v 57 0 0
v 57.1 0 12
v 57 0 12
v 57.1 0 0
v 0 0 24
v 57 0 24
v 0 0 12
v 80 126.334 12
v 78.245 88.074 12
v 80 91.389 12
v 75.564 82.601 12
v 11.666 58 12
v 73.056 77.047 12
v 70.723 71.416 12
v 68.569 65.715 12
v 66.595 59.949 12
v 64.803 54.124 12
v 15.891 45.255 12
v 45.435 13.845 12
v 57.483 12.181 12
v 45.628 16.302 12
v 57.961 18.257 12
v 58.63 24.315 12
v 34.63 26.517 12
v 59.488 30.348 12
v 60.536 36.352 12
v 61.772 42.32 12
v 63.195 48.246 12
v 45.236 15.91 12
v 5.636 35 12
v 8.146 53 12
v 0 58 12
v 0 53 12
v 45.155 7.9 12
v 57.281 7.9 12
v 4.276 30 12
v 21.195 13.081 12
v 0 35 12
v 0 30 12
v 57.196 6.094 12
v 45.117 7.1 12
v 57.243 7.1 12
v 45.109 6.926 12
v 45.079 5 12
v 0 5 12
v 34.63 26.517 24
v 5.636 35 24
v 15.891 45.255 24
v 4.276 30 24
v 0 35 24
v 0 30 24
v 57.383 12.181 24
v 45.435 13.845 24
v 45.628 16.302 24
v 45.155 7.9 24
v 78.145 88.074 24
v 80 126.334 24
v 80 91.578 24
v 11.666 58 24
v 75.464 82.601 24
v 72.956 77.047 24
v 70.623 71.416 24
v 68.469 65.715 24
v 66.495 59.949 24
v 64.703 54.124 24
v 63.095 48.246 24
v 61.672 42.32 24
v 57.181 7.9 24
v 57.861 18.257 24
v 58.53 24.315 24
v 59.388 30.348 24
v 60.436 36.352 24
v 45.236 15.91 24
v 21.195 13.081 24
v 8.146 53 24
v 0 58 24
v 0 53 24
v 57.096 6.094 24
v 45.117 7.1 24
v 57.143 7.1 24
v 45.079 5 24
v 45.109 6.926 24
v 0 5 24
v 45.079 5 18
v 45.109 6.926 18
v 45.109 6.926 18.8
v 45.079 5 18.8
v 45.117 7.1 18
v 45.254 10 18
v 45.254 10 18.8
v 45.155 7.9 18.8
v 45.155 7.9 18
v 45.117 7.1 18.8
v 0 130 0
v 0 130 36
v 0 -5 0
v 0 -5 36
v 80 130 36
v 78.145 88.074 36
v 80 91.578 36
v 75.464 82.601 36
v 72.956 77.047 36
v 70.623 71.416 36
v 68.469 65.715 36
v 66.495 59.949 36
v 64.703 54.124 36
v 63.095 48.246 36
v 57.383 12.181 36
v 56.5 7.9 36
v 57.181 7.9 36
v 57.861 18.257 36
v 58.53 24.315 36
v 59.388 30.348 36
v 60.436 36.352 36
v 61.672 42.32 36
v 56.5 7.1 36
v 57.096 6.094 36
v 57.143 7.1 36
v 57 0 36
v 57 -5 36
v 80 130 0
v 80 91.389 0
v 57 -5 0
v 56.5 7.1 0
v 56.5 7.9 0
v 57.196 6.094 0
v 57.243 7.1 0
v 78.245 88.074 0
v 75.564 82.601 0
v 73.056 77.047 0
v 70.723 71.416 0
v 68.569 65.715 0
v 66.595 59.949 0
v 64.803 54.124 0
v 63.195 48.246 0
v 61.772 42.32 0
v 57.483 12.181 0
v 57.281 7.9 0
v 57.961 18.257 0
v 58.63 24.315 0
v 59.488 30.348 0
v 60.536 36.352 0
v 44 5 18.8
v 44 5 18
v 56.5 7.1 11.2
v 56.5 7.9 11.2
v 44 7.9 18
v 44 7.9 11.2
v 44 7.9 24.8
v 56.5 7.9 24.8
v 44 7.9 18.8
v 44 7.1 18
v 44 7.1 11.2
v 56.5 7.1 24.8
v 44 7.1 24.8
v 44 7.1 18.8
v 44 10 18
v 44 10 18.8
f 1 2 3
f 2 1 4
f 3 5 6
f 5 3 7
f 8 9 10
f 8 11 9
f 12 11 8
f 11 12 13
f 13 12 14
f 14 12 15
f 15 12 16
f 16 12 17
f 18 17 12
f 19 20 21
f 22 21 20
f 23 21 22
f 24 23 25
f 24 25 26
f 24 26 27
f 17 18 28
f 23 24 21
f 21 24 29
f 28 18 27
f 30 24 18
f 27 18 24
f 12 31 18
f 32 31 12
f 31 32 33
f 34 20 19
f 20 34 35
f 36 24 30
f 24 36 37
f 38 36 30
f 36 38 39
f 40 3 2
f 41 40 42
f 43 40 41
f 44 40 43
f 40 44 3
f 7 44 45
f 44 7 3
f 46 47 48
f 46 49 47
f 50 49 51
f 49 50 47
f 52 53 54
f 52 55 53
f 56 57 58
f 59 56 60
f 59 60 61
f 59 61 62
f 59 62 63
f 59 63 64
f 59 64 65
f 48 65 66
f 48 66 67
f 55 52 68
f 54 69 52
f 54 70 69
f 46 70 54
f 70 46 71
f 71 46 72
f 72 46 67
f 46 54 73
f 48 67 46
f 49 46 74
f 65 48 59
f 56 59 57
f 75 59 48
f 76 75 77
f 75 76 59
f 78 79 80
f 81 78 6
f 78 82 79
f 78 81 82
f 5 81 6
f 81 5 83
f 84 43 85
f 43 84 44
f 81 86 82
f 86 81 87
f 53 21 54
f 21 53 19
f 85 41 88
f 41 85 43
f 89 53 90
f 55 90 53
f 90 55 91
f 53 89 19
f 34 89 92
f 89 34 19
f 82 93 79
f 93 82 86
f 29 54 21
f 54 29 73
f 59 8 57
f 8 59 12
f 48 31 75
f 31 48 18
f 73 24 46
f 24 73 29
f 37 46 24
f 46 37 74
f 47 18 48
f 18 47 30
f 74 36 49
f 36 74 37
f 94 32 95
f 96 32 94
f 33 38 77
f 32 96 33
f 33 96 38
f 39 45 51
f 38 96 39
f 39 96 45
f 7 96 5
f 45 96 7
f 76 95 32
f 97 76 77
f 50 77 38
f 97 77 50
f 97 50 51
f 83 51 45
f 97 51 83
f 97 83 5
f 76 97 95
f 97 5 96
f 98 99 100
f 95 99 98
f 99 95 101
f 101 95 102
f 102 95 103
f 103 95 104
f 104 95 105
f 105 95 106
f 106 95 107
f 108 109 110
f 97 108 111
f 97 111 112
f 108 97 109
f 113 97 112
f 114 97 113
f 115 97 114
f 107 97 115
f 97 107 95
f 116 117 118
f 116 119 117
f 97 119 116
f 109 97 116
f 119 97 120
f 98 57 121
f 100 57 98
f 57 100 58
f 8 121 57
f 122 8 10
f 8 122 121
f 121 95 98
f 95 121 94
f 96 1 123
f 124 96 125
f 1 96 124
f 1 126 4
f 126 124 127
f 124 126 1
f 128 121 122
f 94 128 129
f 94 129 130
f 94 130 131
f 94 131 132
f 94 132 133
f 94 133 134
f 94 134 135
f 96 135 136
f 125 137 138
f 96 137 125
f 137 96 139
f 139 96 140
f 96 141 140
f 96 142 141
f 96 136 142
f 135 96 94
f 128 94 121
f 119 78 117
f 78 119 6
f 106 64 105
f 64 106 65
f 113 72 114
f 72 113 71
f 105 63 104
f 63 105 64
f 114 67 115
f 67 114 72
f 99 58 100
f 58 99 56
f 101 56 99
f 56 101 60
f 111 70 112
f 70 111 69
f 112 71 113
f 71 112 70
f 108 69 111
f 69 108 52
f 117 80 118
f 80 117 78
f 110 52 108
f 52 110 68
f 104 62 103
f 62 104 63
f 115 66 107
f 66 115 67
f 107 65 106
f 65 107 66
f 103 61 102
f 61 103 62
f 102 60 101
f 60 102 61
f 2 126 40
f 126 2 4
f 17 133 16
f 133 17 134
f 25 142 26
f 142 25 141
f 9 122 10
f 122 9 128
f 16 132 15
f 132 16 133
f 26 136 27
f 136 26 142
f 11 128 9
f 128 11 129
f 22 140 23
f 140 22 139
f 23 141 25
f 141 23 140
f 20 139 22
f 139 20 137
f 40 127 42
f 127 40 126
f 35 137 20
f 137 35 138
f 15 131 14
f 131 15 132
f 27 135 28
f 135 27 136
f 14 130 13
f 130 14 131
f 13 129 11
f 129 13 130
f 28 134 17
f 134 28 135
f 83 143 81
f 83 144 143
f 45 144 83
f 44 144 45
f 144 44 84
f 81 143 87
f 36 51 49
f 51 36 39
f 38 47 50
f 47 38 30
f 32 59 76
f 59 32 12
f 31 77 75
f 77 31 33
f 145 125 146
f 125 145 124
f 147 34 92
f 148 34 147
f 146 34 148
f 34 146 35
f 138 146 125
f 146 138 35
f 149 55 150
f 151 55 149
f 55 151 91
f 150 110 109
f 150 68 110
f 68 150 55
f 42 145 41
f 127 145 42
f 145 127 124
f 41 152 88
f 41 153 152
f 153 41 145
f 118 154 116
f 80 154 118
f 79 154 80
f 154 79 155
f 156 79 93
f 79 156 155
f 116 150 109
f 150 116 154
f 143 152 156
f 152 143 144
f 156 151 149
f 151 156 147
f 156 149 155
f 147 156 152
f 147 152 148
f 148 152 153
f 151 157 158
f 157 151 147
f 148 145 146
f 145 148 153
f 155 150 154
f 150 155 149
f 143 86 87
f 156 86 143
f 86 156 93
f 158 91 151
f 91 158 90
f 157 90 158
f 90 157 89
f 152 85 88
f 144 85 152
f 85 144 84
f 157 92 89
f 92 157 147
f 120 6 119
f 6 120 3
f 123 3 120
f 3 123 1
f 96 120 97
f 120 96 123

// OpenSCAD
// file: specification_of_components.scad
// Copyright 2020,2024 Martin Scheidt (Attribution 4.0 International, CC-BY 4.0)
//
// You are free to copy and redistribute the material in any medium or format.
// You are free to remix, transform, and build upon the material for any purpose, even commercially.
// You must give appropriate credit, provide a link to the license, and indicate if changes were made.
// You may not apply legal terms or technological measures that legally restrict others from doing anything the license permits.
// No warranties are given.

/*****
To have the dimensions of all components at one place
*******/

/*******
TODO
- standardisation of move tolerance
- standard on which part the move tolerance is substracted?
******/
// ATTENTION: Note the general move_tolerance of 0.5

move_tolerance = 0.5;

/***************wood rail specification***************/
wood_thickness_middle = 11.5;
wood_thickness_rail = 5.5;
wodd_width = 38.5;

straight_length = 144.5;

curve_radius = 182; // inner radius
curve_angle = 45; // degree

/***************magnet specifications***************/
magnet_thickness = 3;
magnet_diameter = 5;
magnet_distance_to_middle = 7.5;
magnet_z = 5.75;

/***************engraving specifications***************/
engraving_height = 1.5;//(block_height-handle_height)/2;
engraving_thickness = 1.5;

/***************switch_blade_optimized***************/

//blade specification
blade_thickness = 2.5;
blade_cover_thicknes = 0.6; //attention: female blade is thinner -> effect on lever_anchor pins?
blade_length = 45;
blade_width  = 19;

//lever anchor specification
lever_hole_size = 2.7;
lever_anchor_posX = blade_width*1/5;
lever_anchor_posY = blade_length*0.8111;

//pin specification
pin_diameter = 5;
pin_female_diameter = pin_diameter+1.5;
pin_height = wood_thickness_rail+2; //2mm move tolerance
y_pos_first_pin = pin_diameter;
y_pos_second_pin = (blade_length*2/3);
overlap = blade_thickness-blade_cover_thicknes; // height of pin_hole, otherwise the pin_hole doesn't stand on the blade -> bug?

/***************overlap_measure***************/
// ATTENTION: Note the general move_tolerance of 0.5

/***************locking_pin***************/
locker_width = 14;
locker_height = 25;
lever_height = 10;
lever_thickness_switch = 4;
rounding = 0.5;

/***************distant-main_signal***************/
block_width=undef;

// body specifications
axis_diameter = 2.5; //maybe use the same material as lever anchor
body_width = 30; // material constraint
body_depth = 50; // minimum, because of the lockpin diameter
body_height = 13.5; // material constraint
wall_thickness_x = (body_width-block_width)/2-move_tolerance;//5;
wall_thickness_y = lever_thickness_switch;
wall_thickness_z = 2;
track_arc_inner_radius = 182;
sagitta = 0.43; //DE: Pfeilhöhe -> 25mm Straighten round edge in the middle
z_pos_axis = 10; // the block_height=13.5 lies a bit heigher, previous: block_height/2+wall_thickness_z

// Locking Part specifications
lock_lever_depth = 9.5;
lock_lever_thickness = 2.5;
lock_lever_height = 10;
foot_width = 2.5;

// color_block specifications
block_width = 20; //material constraint //body_width-2*wall_thickness_x-move_tolerance;
block_depth = (body_depth-2*wall_thickness_y)/2-3*move_tolerance;
block_height = 13.5; // material constraint
//block_height =(body_height-wall_thickness_z)*1.4; //the heigher the value, the more color_block comes out of the body. BUT also: the higher will be the axis hole
overhang = block_height/2-2*move_tolerance; //the circle has to be flattend at one side with move_tolerance
handle_depth = 10+wall_thickness_y;
handle_height = 3;

//Symbol Specifications
signal_symbol_side_space = 4;
signal_symbol_size = block_width-2*signal_symbol_side_space;
signal_triangle_height = (sqrt(3)*signal_symbol_size)/2;

/***************FZS_SZS***************/
zs_with = 25;
zs_depth = 10;
zs_height = 15;

cp_symbol_side_space = 2;
cp_symbol_size = zs_depth-2*cp_symbol_side_space;

/***************drill_template_straight***************/
line_thickness = 0.8;
// drill straight ground
dsg_thickness = 5;
dsg_hole_depth = 5;
// drill straight cutout = dsc
dsc_connector_width = 19;
dsc_rail_width = 73;
dsc_y_pos = 12;
dsc_depth = wood_thickness_middle+move_tolerance;

dsc_connector_z_pos = dsg_thickness+12;
dsc_supporting_surface_width = 50;

// drill straight hole
dsh_y_pos = 12/2;
dsh_x_pos = 7.5;



// drill straigth base = dsb
dsb_width = dsc_rail_width+dsc_connector_width;
dsb_depth = 2*dsc_y_pos+dsc_depth;
dsb_height = 27;


/***************drill_template_curve***************/
// drill template curve = dtc
dtc_cutout_middle_angle = 45+5;

dtc_cutout_z_pos = 12;
dtc_cutout_height = dsc_depth;
dtc_outer_radius = curve_radius+wodd_width;
dtc_side_radius = curve_radius + 30;
dtc_middle_radius = curve_radius + 12;
dtc_inner_radius = curve_radius;

dtc_height = 2*dtc_cutout_z_pos+dtc_cutout_height;

// drill template curve hole
dtch_z_pos = 12/2;
dtch_y_pos = 7.5;

dtc_switch_hole_y_pos = 136.5;
// main file
// Copyright 2024 Martin Scheidt (Attribution 4.0 International, CC-BY 4.0)
//
// You are free to copy and redistribute the material in any medium or format.
// You are free to remix, transform, and build upon the material for any purpose, even commercially.
// You must give appropriate credit, provide a link to the license, and indicate if changes were made.
// You may not apply legal terms or technological measures that legally restrict others from doing anything the license permits.
// No warranties are given.

include<./specification_of_components.scad>

$fn = 200;
module switch_shape(){
    translate([dtc_outer_radius+45,0,dtc_cutout_z_pos]) rotate([0,0,180-curve_angle])union(){
        rotate_extrude(angle = curve_angle) square([dtc_outer_radius, dtc_cutout_z_pos]);
        translate([dtc_outer_radius-wodd_width-15,0,0])cube([wodd_width+15, straight_length, dsc_depth]);
        translate([dtc_outer_radius-(wodd_width-12)-12,0,0]) cube([wodd_width-12,straight_length+19,dsc_depth]);
    }
}

module drill_template_switch(){
difference(){
    cube([80,130,dtc_height]);
    switch_shape();
    
    // curved sides
    translate([25.5+dtc_outer_radius+dsg_thickness,0,dtc_cutout_z_pos+dtc_cutout_height])rotate([0,0,180-curve_angle])rotate_extrude(angle = curve_angle) square([dtc_middle_radius, dtc_cutout_z_pos]);
    translate([25.6+dtc_outer_radius+dsg_thickness,0,0])rotate([0,0,180-curve_angle])rotate_extrude(angle = curve_angle) square([dtc_middle_radius, dtc_cutout_z_pos]);
    
    // ground holes
    translate([0,0,dtc_cutout_z_pos])cube([80, dsg_hole_depth, dtc_cutout_height]);
    translate([0,30,dtc_cutout_z_pos])cube([60, dsg_hole_depth, dtc_cutout_height]);
    translate([0,53,dtc_cutout_z_pos])cube([60, dsg_hole_depth, dtc_cutout_height]);
    
    // hole position lines
    #translate([56.5, dtch_y_pos-line_thickness/2, dtc_cutout_z_pos-dtc_cutout_height]) cube([2*line_thickness, line_thickness, dtc_cutout_height]);
    translate([56.5, dtch_y_pos-line_thickness/2, dtc_cutout_z_pos+dtc_cutout_height]) cube([2*line_thickness, line_thickness, dtc_cutout_height]);
    translate([44, dtch_y_pos-line_thickness/2, dtc_cutout_z_pos]) cube([2*line_thickness, line_thickness, dtc_cutout_height]);
    translate([44, dtch_y_pos-line_thickness/2,dtc_cutout_z_pos-line_thickness])cube([dtc_cutout_z_pos+5, line_thickness, line_thickness]);
    translate([44, dtch_y_pos-line_thickness/2,dtc_cutout_z_pos+dtc_cutout_height])cube([dtc_cutout_z_pos+5, line_thickness, line_thickness]);
    translate([44, dtch_y_pos-5/2, dtc_cutout_z_pos+dtch_z_pos]) cube([2*line_thickness, 5, line_thickness]);
    
}
translate([0,-5,0]) cube([45+12, 5,dtc_height]);
}
//switch_shape();

drill_template_switch();
